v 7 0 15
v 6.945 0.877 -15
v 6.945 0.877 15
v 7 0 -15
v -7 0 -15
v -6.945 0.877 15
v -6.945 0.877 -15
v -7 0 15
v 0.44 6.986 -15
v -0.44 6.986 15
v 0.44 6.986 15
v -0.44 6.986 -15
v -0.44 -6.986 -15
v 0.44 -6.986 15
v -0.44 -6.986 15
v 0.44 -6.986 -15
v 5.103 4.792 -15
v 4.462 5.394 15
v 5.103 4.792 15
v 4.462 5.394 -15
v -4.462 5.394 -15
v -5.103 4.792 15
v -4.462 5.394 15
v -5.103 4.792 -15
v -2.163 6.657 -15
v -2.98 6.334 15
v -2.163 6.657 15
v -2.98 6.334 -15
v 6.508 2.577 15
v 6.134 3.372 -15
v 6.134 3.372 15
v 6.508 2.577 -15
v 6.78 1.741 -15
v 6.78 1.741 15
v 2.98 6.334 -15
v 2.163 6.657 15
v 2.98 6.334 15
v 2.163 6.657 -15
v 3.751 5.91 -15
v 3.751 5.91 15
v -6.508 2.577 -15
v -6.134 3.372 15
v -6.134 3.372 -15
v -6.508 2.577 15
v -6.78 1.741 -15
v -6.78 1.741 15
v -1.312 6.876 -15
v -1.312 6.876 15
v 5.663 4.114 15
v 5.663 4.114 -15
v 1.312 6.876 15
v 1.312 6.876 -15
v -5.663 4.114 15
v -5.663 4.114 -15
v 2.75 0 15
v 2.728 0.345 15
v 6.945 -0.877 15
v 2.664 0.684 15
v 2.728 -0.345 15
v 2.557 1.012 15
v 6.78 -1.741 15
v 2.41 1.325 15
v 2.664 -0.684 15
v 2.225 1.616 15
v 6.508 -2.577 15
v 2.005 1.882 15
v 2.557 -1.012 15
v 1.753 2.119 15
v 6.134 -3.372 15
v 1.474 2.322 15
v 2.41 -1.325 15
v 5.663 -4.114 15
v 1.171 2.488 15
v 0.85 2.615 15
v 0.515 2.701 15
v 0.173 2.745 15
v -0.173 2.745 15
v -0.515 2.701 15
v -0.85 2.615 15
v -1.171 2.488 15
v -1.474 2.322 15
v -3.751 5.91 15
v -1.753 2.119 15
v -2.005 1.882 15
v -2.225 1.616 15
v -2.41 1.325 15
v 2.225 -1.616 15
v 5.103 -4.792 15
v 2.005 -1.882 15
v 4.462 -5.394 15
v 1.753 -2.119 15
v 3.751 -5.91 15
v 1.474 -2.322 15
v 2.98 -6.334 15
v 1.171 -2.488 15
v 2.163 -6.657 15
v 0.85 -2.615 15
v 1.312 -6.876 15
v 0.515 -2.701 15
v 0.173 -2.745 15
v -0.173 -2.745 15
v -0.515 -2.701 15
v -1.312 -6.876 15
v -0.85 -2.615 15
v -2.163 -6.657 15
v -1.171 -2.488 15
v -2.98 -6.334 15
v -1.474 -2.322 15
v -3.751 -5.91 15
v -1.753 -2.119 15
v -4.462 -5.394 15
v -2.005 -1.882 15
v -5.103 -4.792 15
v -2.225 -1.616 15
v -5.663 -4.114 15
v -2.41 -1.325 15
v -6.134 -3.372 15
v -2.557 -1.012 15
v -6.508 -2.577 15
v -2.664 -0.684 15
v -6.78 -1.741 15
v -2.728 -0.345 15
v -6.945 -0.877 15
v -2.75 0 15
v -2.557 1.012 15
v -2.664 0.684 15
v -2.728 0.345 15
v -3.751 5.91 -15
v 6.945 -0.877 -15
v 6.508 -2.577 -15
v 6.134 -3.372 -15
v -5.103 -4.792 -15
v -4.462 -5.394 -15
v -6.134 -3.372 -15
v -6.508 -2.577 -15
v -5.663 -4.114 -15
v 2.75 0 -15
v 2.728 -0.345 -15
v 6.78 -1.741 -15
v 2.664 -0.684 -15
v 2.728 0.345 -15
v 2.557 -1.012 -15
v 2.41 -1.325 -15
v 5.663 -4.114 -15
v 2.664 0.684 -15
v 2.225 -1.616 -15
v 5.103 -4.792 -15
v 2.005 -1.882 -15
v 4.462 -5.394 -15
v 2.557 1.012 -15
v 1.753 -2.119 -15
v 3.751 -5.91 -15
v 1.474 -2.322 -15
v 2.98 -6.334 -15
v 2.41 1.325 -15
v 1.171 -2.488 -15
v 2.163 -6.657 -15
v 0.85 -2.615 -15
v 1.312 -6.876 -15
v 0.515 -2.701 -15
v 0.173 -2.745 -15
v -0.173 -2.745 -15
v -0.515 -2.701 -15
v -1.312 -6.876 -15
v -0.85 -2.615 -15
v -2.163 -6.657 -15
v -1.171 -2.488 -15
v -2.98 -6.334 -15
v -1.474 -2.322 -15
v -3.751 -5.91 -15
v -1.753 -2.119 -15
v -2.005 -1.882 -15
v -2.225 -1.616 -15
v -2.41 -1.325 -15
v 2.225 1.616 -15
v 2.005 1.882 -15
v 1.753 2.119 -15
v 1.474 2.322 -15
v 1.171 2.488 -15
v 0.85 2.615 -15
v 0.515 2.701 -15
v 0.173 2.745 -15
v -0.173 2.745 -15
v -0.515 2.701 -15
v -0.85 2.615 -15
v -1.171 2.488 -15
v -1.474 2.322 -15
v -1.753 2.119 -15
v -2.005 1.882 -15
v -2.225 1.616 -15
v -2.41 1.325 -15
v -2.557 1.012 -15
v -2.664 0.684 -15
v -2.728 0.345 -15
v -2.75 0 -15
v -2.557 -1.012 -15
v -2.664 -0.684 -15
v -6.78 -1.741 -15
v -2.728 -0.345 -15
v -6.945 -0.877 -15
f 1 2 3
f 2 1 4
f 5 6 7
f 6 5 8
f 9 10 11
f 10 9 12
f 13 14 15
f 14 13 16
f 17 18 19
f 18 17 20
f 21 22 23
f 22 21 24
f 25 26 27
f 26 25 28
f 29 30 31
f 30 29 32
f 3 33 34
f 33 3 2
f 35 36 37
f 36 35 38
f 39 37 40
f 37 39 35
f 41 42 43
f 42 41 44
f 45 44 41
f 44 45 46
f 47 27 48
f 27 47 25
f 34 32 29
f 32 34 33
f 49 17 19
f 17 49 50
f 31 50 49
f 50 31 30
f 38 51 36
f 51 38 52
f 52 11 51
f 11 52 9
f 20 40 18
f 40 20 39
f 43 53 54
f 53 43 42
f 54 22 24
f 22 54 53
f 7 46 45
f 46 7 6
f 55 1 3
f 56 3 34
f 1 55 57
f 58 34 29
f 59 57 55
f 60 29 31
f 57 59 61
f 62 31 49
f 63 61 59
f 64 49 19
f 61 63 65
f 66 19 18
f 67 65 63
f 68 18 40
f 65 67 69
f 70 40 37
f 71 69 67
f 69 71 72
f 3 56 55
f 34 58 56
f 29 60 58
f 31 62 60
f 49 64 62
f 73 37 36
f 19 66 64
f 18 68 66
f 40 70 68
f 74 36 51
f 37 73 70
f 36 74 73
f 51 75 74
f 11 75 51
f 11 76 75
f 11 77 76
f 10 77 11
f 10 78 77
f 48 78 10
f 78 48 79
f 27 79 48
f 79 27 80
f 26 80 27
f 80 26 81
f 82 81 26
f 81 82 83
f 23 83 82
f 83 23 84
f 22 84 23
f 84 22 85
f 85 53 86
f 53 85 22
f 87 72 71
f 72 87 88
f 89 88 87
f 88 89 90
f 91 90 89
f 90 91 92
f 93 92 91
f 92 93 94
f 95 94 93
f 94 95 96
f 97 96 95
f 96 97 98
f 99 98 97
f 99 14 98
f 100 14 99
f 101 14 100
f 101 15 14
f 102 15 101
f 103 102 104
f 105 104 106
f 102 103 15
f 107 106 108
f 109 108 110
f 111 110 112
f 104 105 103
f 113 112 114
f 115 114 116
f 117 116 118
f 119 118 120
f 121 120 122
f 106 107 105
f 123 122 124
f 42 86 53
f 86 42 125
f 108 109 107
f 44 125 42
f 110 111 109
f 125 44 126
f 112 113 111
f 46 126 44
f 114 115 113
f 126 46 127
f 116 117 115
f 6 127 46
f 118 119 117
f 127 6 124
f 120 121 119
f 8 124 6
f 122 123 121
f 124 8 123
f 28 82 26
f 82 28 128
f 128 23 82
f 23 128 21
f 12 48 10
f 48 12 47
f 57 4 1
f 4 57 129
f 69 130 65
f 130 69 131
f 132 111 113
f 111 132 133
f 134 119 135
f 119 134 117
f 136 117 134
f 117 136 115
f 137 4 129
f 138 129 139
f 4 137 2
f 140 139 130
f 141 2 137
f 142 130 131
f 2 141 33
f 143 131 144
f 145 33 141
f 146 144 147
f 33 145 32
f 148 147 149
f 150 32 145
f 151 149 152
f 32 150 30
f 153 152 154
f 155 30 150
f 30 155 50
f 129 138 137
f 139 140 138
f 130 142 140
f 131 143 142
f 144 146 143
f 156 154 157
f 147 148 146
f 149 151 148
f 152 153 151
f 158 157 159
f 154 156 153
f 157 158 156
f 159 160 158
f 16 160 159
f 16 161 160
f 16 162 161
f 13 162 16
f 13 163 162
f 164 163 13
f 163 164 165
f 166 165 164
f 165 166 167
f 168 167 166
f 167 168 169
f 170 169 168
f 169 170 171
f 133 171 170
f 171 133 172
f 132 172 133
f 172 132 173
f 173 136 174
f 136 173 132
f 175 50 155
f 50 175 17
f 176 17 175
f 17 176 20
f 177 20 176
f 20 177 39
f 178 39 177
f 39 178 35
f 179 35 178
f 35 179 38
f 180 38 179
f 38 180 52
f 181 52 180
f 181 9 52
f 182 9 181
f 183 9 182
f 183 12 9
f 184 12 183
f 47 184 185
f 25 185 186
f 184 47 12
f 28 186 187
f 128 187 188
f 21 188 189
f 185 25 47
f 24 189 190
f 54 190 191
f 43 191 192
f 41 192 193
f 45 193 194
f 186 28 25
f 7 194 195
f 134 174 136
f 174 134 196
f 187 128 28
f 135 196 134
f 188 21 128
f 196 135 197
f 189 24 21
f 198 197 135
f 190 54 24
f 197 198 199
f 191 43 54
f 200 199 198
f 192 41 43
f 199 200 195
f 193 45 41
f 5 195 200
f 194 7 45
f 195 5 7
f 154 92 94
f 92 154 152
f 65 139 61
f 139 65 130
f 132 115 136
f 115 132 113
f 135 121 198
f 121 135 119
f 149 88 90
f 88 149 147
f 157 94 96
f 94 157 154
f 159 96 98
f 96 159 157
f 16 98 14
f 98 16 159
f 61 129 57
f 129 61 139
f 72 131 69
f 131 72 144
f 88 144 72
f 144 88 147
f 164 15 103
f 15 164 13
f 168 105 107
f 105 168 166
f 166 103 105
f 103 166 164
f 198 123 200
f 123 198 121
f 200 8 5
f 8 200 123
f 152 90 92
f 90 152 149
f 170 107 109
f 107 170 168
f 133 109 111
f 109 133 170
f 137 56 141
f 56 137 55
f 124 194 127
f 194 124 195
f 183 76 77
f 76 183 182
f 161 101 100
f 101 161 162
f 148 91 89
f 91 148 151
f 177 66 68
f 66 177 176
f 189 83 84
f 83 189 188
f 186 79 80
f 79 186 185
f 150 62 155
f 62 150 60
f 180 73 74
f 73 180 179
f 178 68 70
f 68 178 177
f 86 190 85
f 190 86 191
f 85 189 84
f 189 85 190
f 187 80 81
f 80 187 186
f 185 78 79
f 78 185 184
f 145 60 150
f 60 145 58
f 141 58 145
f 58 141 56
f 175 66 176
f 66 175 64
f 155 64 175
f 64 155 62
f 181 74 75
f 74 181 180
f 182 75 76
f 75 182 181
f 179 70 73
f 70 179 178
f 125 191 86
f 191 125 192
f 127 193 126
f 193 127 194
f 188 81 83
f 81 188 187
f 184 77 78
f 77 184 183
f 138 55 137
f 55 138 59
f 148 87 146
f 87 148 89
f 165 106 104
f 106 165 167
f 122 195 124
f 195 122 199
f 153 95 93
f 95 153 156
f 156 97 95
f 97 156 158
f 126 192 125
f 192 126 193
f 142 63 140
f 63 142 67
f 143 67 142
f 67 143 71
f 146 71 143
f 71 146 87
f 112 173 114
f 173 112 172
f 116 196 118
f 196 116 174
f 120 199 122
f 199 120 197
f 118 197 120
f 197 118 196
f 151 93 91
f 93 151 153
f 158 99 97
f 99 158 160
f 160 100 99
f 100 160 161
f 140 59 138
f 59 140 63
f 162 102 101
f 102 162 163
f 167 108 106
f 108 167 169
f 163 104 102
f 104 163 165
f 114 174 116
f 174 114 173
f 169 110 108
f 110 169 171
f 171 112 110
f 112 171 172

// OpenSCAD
$fn = 50;


difference() {
	union() {
		translate(v = [0, 0, -15.0000000000]) {
			cylinder(h = 30, r = 7.0000000000);
		}
	}
	union() {
		translate(v = [0, 0, -100.0000000000]) {
			cylinder(h = 200, r = 2.7500000000);
		}
	}
}
